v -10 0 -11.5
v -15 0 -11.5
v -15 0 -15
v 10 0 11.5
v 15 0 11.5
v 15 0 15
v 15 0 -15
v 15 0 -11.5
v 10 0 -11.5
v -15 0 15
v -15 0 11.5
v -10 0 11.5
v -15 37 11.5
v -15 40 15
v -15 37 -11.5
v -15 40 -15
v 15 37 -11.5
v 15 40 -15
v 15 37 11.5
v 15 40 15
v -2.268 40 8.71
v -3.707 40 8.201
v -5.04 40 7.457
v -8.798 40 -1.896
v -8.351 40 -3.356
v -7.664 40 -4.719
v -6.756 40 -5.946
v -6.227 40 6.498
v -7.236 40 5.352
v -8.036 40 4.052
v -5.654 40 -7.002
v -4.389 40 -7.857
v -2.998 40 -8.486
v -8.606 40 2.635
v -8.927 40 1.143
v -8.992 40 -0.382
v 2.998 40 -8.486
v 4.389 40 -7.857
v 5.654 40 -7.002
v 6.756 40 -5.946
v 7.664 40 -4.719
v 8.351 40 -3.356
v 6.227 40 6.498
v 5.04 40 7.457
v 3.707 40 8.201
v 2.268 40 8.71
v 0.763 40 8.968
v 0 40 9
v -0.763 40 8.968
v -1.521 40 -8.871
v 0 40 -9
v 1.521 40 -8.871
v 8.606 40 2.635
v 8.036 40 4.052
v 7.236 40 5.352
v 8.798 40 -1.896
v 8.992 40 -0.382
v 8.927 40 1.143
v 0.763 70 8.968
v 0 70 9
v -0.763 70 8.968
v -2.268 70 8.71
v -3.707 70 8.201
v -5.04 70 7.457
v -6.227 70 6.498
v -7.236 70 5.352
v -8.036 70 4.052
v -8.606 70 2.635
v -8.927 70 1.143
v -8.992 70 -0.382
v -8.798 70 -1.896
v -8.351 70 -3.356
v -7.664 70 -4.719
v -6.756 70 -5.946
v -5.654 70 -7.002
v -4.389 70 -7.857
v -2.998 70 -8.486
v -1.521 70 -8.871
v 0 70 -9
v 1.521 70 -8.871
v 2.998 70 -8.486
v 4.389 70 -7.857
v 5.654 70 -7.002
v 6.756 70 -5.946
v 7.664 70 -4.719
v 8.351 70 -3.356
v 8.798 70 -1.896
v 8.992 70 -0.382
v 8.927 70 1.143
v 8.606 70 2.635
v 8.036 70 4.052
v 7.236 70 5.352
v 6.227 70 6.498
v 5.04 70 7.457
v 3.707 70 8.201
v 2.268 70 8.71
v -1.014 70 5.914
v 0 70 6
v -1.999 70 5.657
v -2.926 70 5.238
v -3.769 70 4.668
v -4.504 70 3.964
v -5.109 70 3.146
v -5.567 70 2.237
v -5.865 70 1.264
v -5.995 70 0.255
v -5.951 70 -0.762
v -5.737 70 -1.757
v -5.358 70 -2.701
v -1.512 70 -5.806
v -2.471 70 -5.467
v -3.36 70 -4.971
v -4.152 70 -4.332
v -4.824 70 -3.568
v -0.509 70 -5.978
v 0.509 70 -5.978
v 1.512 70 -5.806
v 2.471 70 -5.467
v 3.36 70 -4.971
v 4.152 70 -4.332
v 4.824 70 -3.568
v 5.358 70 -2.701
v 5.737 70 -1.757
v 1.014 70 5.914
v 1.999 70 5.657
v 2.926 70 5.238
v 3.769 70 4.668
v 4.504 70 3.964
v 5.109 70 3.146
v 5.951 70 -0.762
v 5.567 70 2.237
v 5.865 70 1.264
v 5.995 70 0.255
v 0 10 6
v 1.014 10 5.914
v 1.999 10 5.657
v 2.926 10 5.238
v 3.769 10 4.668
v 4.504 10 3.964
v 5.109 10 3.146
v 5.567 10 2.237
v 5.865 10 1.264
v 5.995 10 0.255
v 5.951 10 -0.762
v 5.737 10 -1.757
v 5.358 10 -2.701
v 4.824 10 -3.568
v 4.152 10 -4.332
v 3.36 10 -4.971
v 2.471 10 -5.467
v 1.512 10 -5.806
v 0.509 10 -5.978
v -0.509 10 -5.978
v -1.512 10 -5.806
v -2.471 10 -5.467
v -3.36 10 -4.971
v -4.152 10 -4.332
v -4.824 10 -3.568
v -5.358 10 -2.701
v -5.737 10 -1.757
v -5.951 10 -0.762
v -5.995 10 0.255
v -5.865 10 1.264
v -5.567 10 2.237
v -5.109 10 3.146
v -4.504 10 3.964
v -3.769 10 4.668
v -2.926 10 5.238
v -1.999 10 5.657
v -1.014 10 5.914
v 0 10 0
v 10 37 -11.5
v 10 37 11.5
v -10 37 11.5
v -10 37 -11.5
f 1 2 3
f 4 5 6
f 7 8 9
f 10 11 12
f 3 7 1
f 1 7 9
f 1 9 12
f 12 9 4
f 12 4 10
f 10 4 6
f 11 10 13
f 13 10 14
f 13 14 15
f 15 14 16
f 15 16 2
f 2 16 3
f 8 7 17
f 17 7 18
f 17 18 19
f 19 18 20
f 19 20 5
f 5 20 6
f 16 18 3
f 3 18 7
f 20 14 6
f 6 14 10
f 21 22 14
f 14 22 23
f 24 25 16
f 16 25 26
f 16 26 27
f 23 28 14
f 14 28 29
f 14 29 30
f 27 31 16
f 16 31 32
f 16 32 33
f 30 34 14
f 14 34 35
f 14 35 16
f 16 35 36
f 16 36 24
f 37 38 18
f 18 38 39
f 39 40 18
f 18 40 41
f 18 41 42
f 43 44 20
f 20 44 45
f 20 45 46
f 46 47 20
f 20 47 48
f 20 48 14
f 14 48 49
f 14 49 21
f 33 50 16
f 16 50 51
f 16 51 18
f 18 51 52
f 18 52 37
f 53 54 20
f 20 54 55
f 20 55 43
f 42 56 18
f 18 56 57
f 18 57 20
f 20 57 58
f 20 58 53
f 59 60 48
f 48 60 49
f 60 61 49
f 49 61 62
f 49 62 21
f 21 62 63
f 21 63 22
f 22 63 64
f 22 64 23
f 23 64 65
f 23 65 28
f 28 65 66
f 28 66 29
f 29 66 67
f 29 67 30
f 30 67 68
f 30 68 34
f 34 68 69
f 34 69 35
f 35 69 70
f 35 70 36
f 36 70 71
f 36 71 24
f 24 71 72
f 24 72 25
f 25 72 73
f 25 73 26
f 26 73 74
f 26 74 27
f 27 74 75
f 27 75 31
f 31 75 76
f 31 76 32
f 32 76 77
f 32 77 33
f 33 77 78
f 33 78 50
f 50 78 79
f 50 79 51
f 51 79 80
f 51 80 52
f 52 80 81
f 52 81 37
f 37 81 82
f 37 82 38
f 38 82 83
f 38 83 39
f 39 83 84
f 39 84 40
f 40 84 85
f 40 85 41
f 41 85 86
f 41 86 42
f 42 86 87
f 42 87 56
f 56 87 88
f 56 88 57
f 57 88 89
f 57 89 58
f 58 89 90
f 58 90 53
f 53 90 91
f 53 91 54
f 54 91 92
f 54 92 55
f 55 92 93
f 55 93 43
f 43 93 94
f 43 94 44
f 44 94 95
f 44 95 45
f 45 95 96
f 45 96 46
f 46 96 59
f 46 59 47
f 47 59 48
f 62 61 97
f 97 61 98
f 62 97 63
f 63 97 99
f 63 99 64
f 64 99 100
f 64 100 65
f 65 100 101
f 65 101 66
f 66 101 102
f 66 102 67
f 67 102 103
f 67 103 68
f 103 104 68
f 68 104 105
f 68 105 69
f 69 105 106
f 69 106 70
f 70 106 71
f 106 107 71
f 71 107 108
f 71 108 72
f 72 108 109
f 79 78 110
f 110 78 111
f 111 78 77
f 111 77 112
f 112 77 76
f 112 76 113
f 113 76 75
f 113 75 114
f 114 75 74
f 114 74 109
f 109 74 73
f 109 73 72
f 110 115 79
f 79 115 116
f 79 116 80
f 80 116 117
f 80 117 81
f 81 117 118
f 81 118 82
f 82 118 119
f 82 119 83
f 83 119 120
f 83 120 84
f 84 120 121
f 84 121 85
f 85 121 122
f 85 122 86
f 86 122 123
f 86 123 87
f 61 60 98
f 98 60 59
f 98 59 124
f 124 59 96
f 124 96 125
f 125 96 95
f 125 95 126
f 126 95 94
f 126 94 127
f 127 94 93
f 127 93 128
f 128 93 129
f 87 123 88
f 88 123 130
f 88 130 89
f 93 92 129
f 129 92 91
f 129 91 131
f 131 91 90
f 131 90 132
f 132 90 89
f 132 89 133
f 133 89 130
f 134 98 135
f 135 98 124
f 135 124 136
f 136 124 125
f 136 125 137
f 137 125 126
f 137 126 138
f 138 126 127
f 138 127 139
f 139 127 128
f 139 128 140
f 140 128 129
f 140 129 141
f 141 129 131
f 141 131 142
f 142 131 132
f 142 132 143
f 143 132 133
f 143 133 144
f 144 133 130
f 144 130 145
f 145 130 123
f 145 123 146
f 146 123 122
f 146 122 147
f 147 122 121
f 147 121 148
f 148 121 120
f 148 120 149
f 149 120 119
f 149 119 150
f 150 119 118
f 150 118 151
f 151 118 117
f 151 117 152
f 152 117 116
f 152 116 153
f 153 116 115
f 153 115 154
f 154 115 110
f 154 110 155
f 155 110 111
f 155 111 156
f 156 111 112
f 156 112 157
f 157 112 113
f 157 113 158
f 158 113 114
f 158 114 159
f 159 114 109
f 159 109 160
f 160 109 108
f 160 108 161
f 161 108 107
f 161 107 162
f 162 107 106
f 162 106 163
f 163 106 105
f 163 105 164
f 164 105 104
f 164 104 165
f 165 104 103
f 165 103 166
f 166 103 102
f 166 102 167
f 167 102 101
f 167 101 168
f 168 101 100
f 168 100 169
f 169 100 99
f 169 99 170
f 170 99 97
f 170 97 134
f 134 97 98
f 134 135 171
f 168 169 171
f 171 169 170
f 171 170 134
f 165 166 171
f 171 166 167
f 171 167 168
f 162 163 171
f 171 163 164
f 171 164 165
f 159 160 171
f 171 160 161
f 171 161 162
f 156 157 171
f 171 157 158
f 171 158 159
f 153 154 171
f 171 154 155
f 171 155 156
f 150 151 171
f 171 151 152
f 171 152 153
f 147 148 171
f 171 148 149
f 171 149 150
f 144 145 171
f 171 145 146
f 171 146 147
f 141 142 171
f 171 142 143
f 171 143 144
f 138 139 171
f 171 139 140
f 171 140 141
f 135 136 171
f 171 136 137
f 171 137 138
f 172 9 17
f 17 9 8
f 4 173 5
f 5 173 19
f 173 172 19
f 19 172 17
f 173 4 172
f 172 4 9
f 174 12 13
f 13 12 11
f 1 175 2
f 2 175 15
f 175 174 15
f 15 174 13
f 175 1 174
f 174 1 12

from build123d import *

# Parameters (mm, degrees)
SKETCH1_W           = 30
SKETCH1_H           = 30
BOSS_EXTRUDE1_DEPTH = 40
SKETCH2_R           = 9
BOSS_EXTRUDE2_DEPTH = 30
SKETCH3_R           = 6
CUT_EXTRUDE1_DEPTH  = 60
SKETCH4_W           = 23
SKETCH4_H           = 37
CUT_EXTRUDE2_DEPTH  = 5
SKETCH5_W           = 23
SKETCH5_H           = 37
CUT_EXTRUDE3_DEPTH  = 5


with BuildPart() as part:
    # Sketch1 → Boss-Extrude1 (new body)
    with BuildSketch(Plane(origin=(0, 0, 0), x_dir=(1, 0, 0), z_dir=(0, 1, 0))):
        Rectangle(SKETCH1_W, SKETCH1_H)
    extrude(amount=BOSS_EXTRUDE1_DEPTH)

    # Sketch2 → Boss-Extrude2 (add)
    with BuildSketch(Plane(origin=(0, 40, 0), x_dir=(1, 0, 0), z_dir=(0, 1, 0))):
        with Locations(Location((0, 0, 0), (0, 0, 270))):
            Circle(SKETCH2_R)
    extrude(amount=BOSS_EXTRUDE2_DEPTH)

    # Sketch3 → Cut-Extrude1 (cut)
    with BuildSketch(Plane(origin=(0, 70, 0), x_dir=(1, 0, 0), z_dir=(0, 1, 0))):
        with Locations(Location((0, 0, 0), (0, 0, 270))):
            Circle(SKETCH3_R)
    extrude(amount=-CUT_EXTRUDE1_DEPTH, mode=Mode.SUBTRACT)

    # Sketch4 → Cut-Extrude2 (cut)
    with BuildSketch(Plane(origin=(15, 0, 0), x_dir=(0, 0, -1), z_dir=(1, 0, 0))):
        with Locations((0, 18.5)):
            Rectangle(SKETCH4_W, SKETCH4_H)
    extrude(amount=-CUT_EXTRUDE2_DEPTH, mode=Mode.SUBTRACT)

    # Sketch5 → Cut-Extrude3 (cut)
    with BuildSketch(Plane.ZY.offset(15)):
        with Locations((0, 18.5)):
            Rectangle(SKETCH5_W, SKETCH5_H)
    extrude(amount=-CUT_EXTRUDE3_DEPTH, mode=Mode.SUBTRACT)


solid = part.part
